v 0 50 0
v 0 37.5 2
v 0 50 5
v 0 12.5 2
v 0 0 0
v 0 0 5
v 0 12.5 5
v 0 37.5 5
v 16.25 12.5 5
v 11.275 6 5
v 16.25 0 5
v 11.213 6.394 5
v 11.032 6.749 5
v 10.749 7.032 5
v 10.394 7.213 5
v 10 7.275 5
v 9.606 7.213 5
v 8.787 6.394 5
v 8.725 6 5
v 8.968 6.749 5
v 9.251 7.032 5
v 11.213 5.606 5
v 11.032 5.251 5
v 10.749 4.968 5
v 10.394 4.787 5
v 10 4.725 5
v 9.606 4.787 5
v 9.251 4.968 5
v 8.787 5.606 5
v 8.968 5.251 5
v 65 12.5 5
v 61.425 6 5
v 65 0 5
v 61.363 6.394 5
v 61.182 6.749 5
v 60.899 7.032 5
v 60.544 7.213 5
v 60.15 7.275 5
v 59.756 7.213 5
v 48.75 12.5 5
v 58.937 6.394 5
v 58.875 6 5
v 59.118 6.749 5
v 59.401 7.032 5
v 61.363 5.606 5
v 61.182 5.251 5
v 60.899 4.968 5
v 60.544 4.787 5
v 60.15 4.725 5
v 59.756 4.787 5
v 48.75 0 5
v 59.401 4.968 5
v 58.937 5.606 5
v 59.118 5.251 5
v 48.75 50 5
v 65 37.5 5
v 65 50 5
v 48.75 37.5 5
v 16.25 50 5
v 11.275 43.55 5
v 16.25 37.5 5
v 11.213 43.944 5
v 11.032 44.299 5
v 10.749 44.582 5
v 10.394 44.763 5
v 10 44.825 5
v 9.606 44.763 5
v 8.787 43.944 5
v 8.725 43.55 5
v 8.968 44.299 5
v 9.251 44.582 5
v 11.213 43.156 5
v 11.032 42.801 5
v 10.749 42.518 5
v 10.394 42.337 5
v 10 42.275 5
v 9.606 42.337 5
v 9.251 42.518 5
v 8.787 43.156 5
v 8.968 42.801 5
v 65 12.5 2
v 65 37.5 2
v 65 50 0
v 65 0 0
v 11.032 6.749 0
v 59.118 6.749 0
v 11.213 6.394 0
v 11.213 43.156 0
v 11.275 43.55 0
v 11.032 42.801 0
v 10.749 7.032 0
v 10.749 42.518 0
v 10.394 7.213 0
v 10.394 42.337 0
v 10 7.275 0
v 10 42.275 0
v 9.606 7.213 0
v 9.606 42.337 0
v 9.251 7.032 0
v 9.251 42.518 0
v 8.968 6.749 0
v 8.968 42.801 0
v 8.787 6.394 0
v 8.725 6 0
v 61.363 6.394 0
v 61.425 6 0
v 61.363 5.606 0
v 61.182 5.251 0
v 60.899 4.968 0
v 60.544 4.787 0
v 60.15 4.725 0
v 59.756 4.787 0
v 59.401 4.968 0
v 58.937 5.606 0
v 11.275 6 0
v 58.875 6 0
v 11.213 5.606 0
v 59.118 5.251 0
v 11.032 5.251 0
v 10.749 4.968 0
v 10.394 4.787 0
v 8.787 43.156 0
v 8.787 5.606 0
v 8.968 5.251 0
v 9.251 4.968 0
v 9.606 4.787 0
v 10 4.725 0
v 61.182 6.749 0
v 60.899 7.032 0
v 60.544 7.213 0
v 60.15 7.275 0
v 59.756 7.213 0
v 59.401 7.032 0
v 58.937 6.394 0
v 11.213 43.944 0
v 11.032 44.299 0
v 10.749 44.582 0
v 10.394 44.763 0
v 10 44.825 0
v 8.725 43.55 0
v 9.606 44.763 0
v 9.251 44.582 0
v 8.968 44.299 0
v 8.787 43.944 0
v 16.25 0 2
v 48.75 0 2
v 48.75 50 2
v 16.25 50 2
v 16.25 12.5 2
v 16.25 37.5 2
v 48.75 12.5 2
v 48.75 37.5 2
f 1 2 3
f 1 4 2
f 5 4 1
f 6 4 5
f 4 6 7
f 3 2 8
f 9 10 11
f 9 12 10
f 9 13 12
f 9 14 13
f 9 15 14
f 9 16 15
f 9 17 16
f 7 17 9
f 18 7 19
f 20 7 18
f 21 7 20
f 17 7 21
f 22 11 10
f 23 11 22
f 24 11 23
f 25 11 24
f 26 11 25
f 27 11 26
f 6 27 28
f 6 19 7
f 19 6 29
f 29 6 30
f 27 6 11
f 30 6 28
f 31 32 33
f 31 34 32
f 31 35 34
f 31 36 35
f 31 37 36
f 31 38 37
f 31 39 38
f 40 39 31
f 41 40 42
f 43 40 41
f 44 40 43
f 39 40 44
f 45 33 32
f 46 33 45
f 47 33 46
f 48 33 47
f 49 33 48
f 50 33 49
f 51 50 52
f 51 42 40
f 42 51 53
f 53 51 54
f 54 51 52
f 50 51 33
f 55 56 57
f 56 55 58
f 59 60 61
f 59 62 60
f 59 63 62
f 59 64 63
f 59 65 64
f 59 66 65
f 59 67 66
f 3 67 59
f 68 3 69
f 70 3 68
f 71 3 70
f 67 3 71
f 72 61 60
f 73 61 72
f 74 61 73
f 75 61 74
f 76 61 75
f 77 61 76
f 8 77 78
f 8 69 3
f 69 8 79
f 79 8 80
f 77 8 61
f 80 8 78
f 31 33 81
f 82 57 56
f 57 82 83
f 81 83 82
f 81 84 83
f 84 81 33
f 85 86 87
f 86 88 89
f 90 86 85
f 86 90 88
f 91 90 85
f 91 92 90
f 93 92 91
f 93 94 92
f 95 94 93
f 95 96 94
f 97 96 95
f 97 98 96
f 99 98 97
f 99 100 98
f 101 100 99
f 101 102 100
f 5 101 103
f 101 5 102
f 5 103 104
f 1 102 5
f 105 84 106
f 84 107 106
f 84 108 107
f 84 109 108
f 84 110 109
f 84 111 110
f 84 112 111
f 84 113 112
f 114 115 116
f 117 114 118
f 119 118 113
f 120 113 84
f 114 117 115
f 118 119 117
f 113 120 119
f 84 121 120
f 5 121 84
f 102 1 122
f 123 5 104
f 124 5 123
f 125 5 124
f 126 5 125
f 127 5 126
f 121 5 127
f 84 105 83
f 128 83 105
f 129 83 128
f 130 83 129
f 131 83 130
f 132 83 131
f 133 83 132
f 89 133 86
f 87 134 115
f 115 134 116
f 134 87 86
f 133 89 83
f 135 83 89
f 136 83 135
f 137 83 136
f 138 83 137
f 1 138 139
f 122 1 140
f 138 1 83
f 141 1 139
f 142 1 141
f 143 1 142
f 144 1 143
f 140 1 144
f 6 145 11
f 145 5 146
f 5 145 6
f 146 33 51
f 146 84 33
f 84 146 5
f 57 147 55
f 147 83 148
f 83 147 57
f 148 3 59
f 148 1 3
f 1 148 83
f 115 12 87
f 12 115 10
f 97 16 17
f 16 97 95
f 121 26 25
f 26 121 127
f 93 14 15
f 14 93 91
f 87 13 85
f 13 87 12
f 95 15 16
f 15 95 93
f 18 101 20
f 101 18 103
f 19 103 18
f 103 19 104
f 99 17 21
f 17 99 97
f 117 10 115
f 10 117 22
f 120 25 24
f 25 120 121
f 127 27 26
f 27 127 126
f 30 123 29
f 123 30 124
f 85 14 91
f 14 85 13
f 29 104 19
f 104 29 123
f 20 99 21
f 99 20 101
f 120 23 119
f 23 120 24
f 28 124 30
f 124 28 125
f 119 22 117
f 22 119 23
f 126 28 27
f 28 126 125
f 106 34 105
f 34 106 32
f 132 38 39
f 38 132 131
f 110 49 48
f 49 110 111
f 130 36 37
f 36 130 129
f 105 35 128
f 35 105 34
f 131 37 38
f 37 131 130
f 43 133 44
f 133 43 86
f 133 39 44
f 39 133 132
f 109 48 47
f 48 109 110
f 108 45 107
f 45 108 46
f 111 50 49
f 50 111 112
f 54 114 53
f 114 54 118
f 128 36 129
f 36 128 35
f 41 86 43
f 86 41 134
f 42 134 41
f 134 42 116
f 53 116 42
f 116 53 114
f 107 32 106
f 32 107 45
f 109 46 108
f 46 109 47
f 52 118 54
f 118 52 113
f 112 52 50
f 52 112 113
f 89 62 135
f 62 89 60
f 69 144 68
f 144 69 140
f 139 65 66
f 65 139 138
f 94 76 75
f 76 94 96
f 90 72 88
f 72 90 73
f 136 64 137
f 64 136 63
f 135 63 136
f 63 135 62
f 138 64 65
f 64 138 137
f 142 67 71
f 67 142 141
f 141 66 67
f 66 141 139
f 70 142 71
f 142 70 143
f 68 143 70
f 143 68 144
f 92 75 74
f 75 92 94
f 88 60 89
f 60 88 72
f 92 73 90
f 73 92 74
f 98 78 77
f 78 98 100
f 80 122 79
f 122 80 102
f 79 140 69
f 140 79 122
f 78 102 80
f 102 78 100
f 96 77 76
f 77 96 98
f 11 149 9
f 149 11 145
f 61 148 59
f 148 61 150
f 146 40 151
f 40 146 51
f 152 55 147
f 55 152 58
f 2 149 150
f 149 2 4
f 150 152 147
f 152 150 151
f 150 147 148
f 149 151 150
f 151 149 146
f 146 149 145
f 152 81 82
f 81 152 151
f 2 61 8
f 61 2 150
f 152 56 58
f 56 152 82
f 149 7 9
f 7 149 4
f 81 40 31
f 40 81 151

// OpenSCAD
$fn=20;

// Box dimentions
boxx = 65;
boxy = 50;
boxh = 5;

hs = 2.55;       // Hole Size in mm
isx = 10;        // inital spacing x
isy = 6;         // inital spacing y
a = 47.60  + hs; // x spacing
b = 35 + hs;     // y spacing

difference() {
cube([boxx,boxy,boxh]);
#translate([isx  , isy  , -1])cylinder(r=hs/2, h=boxh+2);
#translate([isx+a, isy  , -1])cylinder(r=hs/2, h=boxh+2);
#translate([isx  , isy+b, -1])cylinder(r=hs/2, h=boxh+2);
#translate([(boxx/4)  , -1, +2])cube([boxx/2,boxy+2,boxh*2/3]);
#translate([ -1 , (boxy/4), +2])cube([boxx+2,boxy/2,boxh*2/3]);
}
